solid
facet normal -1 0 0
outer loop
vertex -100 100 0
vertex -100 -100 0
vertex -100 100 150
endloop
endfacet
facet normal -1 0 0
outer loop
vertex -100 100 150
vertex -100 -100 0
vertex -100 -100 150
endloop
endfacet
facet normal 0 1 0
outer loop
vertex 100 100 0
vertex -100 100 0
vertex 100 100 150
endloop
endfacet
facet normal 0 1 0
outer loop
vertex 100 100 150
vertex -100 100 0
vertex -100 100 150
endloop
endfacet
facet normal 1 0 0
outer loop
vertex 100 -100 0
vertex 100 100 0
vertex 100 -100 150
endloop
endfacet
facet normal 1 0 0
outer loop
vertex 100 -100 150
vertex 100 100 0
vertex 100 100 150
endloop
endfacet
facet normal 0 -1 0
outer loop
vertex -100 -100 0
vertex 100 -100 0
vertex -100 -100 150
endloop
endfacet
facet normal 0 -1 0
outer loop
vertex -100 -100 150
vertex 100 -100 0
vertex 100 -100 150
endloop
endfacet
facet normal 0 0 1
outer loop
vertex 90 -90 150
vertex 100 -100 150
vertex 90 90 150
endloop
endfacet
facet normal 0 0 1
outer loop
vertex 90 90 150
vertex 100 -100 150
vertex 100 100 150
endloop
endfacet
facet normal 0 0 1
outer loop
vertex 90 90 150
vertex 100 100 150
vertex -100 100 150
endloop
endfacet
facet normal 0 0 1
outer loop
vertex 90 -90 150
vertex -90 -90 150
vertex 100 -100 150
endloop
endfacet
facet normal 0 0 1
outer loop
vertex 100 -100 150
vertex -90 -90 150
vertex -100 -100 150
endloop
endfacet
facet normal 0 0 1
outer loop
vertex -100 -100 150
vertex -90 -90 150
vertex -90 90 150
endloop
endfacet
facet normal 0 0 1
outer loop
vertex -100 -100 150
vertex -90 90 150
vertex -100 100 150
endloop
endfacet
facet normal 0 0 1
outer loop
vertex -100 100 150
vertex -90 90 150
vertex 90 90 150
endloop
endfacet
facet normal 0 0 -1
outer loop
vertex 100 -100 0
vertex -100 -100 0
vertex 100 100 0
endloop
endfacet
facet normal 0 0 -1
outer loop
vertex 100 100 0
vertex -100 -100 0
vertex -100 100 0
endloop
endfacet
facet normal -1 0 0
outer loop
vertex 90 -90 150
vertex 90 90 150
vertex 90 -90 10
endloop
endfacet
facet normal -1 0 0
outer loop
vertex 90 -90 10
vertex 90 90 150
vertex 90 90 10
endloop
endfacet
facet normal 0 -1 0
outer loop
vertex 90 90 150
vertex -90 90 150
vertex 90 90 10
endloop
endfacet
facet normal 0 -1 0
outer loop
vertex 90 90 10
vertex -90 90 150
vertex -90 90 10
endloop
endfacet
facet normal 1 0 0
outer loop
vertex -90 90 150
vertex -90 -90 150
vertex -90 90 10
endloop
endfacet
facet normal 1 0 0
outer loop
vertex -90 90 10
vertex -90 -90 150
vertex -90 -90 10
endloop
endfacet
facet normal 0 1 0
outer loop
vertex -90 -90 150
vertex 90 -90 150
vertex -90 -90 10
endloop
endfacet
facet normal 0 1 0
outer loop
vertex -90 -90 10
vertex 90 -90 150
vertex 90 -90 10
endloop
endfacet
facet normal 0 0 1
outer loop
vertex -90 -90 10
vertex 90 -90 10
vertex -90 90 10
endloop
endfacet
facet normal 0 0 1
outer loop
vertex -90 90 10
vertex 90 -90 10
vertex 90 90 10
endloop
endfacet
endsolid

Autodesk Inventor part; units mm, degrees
ref_plane "YZ Plane" through (0, 0, 0) normal (1, 0, 0) x (0, 1, 0)
ref_plane "XZ Plane" through (0, 0, 0) normal (0, 1, 0) x (-1, 0, 0)
ref_plane "XY Plane" through (0, 0, 0) normal (0, 0, 1) x (1, 0, 0)
sketch "스케치1" plane through (0, 0, 0) normal (0, 0, 1) x (1, 0, 0)
  line L0 (-100, 100) -> (100, 100)
  line L1 (100, 100) -> (100, -100)
  line L2 (100, -100) -> (-100, -100)
  line L3 (-100, -100) -> (-100, 100)
  point P0 (0, 0)
  dimension "d0" = 200
  dimension "d1" = 200
  dimension "d2" = 100
  dimension "d3" = 100
extrude "돌출1" add sketch "스케치1" along normal blind 150
sketch "스케치2" plane through (0, 0, 150) normal (0, 0, 1) x (1, 0, 0)
  line L0 (-90, 90) -> (90, 90)
  line L1 (90, 90) -> (90, -90)
  line L2 (90, -90) -> (-90, -90)
  line L3 (-90, -90) -> (-90, 90)
  point P0 (0, 0)
  dimension "d6" = 180
  dimension "d7" = 180
  dimension "d8" = 90
  dimension "d9" = 90
extrude "돌출2" cut sketch "스케치2" against normal blind 140
properties part number "basket"
